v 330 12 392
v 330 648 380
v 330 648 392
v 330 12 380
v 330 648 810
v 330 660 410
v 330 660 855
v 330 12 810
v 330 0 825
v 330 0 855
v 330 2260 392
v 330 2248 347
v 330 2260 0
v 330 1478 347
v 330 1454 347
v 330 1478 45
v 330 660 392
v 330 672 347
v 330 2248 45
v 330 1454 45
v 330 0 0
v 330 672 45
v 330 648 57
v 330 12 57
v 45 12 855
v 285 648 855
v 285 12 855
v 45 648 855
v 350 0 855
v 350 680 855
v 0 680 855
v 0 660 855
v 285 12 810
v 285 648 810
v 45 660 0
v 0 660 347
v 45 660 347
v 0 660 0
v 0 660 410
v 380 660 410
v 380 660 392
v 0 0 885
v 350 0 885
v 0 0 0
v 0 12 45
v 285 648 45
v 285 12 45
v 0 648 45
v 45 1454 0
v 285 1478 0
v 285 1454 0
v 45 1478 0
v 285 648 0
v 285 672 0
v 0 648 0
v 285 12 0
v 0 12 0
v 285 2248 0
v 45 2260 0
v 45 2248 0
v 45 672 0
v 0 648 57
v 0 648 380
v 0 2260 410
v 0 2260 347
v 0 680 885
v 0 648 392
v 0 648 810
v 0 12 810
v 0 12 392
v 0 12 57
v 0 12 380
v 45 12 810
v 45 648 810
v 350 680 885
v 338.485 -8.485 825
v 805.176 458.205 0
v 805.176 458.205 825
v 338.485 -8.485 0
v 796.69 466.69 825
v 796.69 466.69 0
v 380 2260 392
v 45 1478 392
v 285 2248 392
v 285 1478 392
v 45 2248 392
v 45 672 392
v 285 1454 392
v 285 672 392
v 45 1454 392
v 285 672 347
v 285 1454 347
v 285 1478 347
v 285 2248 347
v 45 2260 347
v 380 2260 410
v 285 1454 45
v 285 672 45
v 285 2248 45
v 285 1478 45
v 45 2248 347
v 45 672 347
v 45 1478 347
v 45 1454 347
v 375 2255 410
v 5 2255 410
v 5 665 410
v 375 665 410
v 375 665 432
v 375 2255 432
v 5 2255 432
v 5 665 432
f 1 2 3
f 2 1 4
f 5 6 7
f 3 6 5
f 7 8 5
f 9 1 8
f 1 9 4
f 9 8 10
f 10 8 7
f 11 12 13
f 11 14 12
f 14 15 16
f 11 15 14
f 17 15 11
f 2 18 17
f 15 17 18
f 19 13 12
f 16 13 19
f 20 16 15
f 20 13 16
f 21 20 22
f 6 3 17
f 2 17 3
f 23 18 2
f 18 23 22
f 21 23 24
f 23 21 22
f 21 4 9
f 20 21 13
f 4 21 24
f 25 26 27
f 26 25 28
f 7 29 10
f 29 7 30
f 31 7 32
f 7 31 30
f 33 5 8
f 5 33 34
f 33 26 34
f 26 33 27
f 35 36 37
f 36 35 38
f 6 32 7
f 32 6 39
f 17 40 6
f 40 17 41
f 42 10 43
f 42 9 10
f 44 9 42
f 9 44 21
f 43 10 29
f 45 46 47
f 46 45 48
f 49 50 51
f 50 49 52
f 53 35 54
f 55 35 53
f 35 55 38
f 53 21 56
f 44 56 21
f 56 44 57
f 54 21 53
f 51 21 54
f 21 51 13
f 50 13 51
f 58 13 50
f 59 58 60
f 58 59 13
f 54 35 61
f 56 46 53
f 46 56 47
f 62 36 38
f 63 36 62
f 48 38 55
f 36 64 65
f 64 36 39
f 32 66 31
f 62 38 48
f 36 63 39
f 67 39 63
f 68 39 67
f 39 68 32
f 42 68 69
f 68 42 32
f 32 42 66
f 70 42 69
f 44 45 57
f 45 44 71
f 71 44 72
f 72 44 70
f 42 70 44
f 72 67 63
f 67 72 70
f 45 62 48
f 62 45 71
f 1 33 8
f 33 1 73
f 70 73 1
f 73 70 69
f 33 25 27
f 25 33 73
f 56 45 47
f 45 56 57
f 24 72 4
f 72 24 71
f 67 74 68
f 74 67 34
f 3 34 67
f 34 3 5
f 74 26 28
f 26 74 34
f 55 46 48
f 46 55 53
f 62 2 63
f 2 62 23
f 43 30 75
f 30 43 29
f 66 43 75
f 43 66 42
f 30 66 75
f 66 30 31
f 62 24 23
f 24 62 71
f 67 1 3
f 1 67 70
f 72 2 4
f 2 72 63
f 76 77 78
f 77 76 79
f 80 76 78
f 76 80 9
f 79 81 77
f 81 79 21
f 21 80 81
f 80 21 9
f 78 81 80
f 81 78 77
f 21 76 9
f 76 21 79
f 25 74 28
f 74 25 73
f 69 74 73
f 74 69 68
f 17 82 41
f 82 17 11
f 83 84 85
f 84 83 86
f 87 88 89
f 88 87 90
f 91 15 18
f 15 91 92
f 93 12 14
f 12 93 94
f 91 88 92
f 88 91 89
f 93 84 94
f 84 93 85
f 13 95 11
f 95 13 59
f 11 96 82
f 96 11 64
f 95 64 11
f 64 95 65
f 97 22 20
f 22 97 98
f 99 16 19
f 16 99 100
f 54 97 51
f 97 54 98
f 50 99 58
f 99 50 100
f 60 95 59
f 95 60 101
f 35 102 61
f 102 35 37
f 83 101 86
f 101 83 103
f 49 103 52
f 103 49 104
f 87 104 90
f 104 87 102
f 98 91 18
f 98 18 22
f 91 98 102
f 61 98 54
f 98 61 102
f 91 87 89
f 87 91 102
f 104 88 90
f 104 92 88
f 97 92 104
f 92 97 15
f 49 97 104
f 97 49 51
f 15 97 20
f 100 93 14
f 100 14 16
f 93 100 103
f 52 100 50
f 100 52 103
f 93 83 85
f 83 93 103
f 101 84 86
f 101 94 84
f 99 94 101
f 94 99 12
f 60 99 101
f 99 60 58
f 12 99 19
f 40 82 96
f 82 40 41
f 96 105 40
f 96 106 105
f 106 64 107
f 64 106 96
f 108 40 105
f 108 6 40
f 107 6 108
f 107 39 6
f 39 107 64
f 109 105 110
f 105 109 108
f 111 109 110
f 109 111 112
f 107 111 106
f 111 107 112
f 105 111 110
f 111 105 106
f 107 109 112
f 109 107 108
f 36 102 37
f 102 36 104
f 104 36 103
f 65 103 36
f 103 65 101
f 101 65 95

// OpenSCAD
$fn = 50;

debug = false;
show_supports = true;
show_barlina = true;
show_top = true;
show_cushion = true;


depth = 330;

cabinet_stone_top_thickness = 30;
cabinet_plywood_top_thickness = 12;
cabinet_height = 897 - cabinet_stone_top_thickness - cabinet_plywood_top_thickness;
cabinet_width = 660;
cabinet_overhang = 20;

bench_cushion_height = 40;
bench_top_thickness = 18;
bench_height = 450 - bench_cushion_height - bench_top_thickness;
bench_width = 1600;
bench_overhang = 50;

plywood_thickness = 12;
stud_thickness = 45;

//

Cabinet();
Bench();

//

module Cabinet() {
  // Skåp
  if (debug) {
    color("#80000085")
    %Cube(depth, cabinet_width, cabinet_height);
  }

  if (show_barlina) {
    // bärlina bak
    translate([0, plywood_thickness, cabinet_height - stud_thickness])
    45x45(cabinet_width - 2*plywood_thickness);
  }

  if (show_supports) {
    // Regel fram uppe
    translate([depth - stud_thickness, 0, cabinet_height - stud_thickness])
    45x45(cabinet_width);

    // "bärlina" fram nere
    translate([depth - stud_thickness, 0, 0])
    45x45(cabinet_width);

    // Väggar
    Cube(depth, plywood_thickness, cabinet_height);

    translate([0, cabinet_width - plywood_thickness, 0])
    Cube(depth, plywood_thickness, cabinet_height);

    // playwood top
    translate([0, 0, cabinet_height])
    Cube(depth, cabinet_width, cabinet_plywood_top_thickness);
  }

  if (show_top) {
    // Sten Bänkskiva
    color("#000000")
    translate([0, 0, cabinet_height])
    Cube(depth + cabinet_overhang, cabinet_width + cabinet_overhang, cabinet_stone_top_thickness);

    // hyllplan
    translate([0, 0, stud_thickness])
    Cube(depth, cabinet_width, 12);

    translate([0, 0, bench_height - 12])
    Cube(depth, cabinet_width, 12);

    // dörr
    translate([depth, 0, 0])
    Rotate([0, 0, -45 - 45 * sin($t*360)])
    Cube(12, cabinet_width, cabinet_height - cabinet_stone_top_thickness);
  }
}

module Bench() {
  // Bänk
  translate([0, cabinet_width, 0]) {
    if (debug)
    color("#80000085")
    %Cube(depth, bench_width, bench_height);

    if (show_top) {
      // skiva
      translate([0, 0, bench_height])
      Cube(depth + bench_overhang, bench_width, bench_top_thickness);
    }

    if (show_cushion) {
      translate([5, 5, bench_height])
      Cube(depth + bench_overhang - 10, bench_width - 10, bench_cushion_height, "#bca895");
    }

    if (show_barlina) {
      // bärlina bak
      translate([0,0, bench_height - stud_thickness])
      45x45(bench_width);
    }

    if (show_supports) {
      // Regel fram uppe
      translate([depth - stud_thickness, 0, bench_height - stud_thickness])
      45x45(bench_width);

      // Regel fram nere
      translate([depth - stud_thickness, 0, 0])
      45x45(bench_width);


      // legs
      translate([stud_thickness, 0, 0])
      Cube(depth-stud_thickness, plywood_thickness, bench_height);

      translate([stud_thickness, bench_width/2 - plywood_thickness/2, 0])
      Cube(depth-stud_thickness, plywood_thickness, bench_height);

      translate([stud_thickness, bench_width/2 + plywood_thickness/2, 0])
      Cube(depth-stud_thickness, plywood_thickness, bench_height);

      translate([stud_thickness, bench_width - plywood_thickness, 0])
      Cube(depth-stud_thickness, plywood_thickness, bench_height);
    }
  }
}

module 45x45(length = 100) {
  Cube(stud_thickness, length, stud_thickness);
}

module Cube(width, length, height, color = "#bab09e") {
  color(color)
  cube([width, length, height]);
}

module Rotate(rotation = [0, 0, 0], originOffset = [0, 0, 0], debug = false) {
  translate(originOffset)
  rotate(rotation)
  translate(-originOffset)
  children();

  if (debug) {
    translate(originOffset)
    #sphere(r=20);
  }
}
